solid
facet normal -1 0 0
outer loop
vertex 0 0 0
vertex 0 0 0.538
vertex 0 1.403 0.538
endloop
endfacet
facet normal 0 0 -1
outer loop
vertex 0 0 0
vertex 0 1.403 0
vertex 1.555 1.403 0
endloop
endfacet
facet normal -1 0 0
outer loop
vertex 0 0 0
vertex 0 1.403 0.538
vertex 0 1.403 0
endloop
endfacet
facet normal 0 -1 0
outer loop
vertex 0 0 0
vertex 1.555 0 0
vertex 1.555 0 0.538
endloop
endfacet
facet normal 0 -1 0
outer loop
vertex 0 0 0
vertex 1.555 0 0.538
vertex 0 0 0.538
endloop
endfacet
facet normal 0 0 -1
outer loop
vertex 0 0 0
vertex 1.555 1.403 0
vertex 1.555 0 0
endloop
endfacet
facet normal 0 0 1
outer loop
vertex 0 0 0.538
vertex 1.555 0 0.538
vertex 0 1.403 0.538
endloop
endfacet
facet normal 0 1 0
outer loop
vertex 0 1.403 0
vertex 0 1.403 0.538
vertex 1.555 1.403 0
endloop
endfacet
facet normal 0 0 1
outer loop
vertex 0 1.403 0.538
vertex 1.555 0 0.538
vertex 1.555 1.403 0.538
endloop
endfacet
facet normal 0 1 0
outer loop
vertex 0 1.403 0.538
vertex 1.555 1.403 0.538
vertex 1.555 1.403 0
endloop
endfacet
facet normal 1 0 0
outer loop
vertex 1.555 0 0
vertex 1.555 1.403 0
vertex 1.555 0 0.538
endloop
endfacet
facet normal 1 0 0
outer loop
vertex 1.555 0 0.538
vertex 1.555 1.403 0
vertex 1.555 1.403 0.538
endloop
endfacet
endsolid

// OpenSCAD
/* Warning, this is a very basic generator with a lot of approximation 
input data : [WLCSP, F4B, 1.555x1.403x0.538mm, 12, , A, C04-21226A]
generated by com.zoubworld.electronics.cad.model3d.Basic
Date : Sun Feb 15 10:50:49 CET 2026
*/

//body
color("black")
translate([0,0,0])
cube([1.555,1.403,0.538], center=false);
